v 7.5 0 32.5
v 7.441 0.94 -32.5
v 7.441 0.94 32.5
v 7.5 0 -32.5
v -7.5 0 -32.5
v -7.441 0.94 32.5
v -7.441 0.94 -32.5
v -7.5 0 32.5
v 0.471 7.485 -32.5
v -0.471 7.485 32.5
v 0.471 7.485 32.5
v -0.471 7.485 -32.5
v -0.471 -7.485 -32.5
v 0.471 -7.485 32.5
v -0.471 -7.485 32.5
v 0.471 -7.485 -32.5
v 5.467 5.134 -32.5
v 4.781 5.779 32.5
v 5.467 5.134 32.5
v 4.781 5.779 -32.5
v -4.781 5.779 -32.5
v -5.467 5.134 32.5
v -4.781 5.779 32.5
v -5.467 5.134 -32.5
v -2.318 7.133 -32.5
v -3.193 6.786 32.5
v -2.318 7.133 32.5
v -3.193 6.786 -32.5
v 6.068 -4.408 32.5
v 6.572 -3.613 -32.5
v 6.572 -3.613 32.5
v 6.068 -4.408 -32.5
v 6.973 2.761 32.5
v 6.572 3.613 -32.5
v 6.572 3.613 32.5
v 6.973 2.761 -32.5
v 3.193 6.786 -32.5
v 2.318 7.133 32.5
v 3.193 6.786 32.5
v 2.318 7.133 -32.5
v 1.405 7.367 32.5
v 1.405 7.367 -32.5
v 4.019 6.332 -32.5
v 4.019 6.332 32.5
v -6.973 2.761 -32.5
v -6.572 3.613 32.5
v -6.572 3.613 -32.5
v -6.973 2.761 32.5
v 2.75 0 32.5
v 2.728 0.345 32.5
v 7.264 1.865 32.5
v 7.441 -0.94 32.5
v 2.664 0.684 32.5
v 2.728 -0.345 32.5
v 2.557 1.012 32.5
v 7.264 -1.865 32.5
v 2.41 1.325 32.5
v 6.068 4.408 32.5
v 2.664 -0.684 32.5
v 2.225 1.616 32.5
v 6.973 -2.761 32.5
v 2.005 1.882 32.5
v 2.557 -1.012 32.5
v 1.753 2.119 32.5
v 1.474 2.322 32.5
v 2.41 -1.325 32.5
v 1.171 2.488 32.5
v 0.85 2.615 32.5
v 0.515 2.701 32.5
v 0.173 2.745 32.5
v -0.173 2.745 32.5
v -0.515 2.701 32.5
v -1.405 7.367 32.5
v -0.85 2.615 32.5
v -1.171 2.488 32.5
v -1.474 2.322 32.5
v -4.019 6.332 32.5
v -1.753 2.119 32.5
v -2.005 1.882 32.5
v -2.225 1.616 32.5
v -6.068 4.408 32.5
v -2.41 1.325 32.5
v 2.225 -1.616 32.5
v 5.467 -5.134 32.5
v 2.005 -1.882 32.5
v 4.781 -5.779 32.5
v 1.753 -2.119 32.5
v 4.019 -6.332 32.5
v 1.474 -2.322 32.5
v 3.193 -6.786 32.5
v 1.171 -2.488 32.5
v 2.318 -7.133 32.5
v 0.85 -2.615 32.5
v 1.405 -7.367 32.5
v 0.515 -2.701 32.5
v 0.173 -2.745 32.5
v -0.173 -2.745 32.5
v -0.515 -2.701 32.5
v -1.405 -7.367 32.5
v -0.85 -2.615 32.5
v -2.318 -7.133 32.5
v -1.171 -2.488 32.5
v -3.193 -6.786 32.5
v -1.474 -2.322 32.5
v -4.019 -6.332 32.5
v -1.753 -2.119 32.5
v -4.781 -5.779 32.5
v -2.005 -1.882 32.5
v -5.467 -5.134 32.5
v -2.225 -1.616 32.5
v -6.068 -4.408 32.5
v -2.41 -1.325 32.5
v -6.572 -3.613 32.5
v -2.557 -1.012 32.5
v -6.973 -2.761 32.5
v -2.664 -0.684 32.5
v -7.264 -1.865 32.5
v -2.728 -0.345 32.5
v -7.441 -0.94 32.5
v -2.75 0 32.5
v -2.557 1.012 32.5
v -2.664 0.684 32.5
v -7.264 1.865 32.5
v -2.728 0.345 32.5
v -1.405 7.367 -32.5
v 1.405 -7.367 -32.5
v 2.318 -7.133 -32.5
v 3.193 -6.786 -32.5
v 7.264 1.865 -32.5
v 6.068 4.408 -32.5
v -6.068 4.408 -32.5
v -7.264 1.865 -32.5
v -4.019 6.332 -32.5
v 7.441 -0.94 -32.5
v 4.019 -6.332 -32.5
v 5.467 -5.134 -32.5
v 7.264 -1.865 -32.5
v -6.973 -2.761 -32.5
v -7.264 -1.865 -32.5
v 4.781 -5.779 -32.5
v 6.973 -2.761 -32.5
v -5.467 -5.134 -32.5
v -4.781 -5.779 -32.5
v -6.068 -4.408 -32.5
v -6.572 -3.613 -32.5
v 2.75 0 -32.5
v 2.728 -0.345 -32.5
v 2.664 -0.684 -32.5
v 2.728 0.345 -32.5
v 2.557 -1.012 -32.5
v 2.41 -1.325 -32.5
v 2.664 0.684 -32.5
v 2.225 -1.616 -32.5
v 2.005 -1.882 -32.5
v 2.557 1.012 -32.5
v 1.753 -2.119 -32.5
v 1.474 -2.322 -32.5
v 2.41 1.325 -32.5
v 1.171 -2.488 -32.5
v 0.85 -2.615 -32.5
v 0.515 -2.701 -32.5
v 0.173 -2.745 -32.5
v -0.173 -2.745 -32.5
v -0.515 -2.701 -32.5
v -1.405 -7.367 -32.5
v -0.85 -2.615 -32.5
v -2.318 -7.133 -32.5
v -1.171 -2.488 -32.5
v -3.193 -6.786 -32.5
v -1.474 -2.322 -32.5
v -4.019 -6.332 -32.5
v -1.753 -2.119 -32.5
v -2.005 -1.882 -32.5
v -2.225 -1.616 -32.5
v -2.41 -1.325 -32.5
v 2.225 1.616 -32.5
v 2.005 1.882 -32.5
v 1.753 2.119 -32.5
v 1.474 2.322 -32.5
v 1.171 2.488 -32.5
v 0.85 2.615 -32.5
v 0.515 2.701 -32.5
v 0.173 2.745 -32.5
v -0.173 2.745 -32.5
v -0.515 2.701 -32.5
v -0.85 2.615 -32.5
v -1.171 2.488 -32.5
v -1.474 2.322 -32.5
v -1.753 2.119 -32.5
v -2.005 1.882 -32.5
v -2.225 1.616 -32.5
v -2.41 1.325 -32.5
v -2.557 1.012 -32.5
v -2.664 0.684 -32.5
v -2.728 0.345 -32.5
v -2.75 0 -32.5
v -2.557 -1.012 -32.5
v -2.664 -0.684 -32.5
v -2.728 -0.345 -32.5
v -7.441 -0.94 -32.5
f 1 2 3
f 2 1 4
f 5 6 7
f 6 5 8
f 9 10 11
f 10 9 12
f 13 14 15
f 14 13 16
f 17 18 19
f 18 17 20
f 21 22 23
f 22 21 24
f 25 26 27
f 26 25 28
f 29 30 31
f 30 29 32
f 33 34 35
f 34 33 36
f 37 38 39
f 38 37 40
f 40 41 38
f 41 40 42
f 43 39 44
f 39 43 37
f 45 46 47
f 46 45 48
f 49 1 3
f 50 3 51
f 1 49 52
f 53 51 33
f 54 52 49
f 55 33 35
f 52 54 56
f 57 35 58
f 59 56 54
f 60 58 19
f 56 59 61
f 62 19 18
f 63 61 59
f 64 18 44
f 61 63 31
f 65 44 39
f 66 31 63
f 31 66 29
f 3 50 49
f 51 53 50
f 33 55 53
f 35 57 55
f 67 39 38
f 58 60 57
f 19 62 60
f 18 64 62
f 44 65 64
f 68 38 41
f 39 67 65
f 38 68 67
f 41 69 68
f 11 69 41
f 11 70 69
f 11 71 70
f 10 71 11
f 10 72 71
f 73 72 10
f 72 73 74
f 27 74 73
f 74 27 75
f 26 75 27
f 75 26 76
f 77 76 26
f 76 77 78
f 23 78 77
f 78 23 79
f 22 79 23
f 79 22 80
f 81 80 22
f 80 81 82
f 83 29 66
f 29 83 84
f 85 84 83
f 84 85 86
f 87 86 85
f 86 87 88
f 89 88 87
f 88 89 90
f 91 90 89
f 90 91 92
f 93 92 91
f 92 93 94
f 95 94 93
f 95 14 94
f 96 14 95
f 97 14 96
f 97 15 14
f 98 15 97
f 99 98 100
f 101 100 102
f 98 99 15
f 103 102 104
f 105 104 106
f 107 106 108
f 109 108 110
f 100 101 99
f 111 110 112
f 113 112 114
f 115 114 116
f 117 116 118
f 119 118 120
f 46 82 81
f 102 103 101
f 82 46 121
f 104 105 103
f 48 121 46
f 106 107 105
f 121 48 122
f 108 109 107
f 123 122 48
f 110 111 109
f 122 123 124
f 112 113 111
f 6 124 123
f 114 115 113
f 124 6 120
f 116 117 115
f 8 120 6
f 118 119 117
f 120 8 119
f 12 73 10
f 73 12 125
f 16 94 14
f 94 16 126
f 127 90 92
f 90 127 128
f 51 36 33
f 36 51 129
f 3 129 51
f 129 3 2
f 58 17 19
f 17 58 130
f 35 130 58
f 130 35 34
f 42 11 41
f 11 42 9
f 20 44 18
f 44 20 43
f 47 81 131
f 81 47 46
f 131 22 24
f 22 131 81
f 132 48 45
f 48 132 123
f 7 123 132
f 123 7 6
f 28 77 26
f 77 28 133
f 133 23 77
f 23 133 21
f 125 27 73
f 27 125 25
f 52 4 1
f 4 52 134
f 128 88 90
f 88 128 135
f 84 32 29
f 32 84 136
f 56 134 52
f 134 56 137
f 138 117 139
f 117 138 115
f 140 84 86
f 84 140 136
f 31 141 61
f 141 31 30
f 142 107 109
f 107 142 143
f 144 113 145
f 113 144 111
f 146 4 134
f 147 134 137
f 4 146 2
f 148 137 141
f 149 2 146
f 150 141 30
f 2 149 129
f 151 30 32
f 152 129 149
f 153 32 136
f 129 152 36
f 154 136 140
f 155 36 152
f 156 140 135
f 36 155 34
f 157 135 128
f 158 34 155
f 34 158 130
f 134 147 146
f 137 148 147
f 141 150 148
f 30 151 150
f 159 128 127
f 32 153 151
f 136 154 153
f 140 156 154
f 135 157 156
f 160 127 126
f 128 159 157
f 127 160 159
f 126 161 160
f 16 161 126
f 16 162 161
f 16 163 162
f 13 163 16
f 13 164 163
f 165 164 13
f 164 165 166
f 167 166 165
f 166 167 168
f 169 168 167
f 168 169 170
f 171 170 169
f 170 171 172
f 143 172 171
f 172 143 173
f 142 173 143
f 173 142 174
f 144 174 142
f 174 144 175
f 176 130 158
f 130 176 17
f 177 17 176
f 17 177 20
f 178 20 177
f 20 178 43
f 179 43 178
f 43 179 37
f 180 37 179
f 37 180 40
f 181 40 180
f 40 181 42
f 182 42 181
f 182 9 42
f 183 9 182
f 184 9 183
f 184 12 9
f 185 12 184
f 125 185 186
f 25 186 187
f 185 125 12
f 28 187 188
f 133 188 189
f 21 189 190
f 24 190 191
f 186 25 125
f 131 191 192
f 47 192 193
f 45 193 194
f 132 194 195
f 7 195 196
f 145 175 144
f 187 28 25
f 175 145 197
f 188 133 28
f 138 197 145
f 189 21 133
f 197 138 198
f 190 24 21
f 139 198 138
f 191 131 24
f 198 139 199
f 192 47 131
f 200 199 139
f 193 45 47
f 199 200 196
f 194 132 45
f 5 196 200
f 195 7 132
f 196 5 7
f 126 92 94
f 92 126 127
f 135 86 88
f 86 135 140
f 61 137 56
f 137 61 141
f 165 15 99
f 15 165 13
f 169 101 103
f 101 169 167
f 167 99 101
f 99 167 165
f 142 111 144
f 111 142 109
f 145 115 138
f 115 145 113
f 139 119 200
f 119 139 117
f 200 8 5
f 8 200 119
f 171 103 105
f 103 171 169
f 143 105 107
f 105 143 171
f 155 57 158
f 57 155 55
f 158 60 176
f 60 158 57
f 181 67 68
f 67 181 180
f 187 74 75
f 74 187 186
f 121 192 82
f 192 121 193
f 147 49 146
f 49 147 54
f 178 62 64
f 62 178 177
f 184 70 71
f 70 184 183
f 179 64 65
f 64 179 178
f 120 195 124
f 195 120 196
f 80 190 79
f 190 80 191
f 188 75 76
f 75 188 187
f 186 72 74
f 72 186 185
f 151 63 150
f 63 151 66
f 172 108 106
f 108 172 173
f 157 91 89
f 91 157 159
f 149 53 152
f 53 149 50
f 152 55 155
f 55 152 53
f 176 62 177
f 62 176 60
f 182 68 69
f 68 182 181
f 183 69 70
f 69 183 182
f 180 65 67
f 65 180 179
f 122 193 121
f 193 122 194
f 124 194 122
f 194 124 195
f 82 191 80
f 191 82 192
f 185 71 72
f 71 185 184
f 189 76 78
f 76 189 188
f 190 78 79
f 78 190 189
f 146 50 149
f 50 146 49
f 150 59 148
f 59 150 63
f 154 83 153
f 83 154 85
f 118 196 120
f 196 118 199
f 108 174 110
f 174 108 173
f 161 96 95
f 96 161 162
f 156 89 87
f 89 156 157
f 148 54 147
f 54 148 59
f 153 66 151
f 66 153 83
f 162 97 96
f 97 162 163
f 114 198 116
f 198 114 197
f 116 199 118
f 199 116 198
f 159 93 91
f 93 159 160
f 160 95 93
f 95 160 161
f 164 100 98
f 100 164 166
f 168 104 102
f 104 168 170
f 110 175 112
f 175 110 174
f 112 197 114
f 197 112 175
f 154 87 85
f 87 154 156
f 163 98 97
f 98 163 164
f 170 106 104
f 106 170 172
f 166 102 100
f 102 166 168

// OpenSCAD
$fn = 50;


difference() {
	union() {
		translate(v = [0, 0, -32.5000000000]) {
			cylinder(h = 65, r = 7.5000000000);
		}
	}
	union() {
		translate(v = [0, 0, -100.0000000000]) {
			cylinder(h = 200, r = 2.7500000000);
		}
	}
}
